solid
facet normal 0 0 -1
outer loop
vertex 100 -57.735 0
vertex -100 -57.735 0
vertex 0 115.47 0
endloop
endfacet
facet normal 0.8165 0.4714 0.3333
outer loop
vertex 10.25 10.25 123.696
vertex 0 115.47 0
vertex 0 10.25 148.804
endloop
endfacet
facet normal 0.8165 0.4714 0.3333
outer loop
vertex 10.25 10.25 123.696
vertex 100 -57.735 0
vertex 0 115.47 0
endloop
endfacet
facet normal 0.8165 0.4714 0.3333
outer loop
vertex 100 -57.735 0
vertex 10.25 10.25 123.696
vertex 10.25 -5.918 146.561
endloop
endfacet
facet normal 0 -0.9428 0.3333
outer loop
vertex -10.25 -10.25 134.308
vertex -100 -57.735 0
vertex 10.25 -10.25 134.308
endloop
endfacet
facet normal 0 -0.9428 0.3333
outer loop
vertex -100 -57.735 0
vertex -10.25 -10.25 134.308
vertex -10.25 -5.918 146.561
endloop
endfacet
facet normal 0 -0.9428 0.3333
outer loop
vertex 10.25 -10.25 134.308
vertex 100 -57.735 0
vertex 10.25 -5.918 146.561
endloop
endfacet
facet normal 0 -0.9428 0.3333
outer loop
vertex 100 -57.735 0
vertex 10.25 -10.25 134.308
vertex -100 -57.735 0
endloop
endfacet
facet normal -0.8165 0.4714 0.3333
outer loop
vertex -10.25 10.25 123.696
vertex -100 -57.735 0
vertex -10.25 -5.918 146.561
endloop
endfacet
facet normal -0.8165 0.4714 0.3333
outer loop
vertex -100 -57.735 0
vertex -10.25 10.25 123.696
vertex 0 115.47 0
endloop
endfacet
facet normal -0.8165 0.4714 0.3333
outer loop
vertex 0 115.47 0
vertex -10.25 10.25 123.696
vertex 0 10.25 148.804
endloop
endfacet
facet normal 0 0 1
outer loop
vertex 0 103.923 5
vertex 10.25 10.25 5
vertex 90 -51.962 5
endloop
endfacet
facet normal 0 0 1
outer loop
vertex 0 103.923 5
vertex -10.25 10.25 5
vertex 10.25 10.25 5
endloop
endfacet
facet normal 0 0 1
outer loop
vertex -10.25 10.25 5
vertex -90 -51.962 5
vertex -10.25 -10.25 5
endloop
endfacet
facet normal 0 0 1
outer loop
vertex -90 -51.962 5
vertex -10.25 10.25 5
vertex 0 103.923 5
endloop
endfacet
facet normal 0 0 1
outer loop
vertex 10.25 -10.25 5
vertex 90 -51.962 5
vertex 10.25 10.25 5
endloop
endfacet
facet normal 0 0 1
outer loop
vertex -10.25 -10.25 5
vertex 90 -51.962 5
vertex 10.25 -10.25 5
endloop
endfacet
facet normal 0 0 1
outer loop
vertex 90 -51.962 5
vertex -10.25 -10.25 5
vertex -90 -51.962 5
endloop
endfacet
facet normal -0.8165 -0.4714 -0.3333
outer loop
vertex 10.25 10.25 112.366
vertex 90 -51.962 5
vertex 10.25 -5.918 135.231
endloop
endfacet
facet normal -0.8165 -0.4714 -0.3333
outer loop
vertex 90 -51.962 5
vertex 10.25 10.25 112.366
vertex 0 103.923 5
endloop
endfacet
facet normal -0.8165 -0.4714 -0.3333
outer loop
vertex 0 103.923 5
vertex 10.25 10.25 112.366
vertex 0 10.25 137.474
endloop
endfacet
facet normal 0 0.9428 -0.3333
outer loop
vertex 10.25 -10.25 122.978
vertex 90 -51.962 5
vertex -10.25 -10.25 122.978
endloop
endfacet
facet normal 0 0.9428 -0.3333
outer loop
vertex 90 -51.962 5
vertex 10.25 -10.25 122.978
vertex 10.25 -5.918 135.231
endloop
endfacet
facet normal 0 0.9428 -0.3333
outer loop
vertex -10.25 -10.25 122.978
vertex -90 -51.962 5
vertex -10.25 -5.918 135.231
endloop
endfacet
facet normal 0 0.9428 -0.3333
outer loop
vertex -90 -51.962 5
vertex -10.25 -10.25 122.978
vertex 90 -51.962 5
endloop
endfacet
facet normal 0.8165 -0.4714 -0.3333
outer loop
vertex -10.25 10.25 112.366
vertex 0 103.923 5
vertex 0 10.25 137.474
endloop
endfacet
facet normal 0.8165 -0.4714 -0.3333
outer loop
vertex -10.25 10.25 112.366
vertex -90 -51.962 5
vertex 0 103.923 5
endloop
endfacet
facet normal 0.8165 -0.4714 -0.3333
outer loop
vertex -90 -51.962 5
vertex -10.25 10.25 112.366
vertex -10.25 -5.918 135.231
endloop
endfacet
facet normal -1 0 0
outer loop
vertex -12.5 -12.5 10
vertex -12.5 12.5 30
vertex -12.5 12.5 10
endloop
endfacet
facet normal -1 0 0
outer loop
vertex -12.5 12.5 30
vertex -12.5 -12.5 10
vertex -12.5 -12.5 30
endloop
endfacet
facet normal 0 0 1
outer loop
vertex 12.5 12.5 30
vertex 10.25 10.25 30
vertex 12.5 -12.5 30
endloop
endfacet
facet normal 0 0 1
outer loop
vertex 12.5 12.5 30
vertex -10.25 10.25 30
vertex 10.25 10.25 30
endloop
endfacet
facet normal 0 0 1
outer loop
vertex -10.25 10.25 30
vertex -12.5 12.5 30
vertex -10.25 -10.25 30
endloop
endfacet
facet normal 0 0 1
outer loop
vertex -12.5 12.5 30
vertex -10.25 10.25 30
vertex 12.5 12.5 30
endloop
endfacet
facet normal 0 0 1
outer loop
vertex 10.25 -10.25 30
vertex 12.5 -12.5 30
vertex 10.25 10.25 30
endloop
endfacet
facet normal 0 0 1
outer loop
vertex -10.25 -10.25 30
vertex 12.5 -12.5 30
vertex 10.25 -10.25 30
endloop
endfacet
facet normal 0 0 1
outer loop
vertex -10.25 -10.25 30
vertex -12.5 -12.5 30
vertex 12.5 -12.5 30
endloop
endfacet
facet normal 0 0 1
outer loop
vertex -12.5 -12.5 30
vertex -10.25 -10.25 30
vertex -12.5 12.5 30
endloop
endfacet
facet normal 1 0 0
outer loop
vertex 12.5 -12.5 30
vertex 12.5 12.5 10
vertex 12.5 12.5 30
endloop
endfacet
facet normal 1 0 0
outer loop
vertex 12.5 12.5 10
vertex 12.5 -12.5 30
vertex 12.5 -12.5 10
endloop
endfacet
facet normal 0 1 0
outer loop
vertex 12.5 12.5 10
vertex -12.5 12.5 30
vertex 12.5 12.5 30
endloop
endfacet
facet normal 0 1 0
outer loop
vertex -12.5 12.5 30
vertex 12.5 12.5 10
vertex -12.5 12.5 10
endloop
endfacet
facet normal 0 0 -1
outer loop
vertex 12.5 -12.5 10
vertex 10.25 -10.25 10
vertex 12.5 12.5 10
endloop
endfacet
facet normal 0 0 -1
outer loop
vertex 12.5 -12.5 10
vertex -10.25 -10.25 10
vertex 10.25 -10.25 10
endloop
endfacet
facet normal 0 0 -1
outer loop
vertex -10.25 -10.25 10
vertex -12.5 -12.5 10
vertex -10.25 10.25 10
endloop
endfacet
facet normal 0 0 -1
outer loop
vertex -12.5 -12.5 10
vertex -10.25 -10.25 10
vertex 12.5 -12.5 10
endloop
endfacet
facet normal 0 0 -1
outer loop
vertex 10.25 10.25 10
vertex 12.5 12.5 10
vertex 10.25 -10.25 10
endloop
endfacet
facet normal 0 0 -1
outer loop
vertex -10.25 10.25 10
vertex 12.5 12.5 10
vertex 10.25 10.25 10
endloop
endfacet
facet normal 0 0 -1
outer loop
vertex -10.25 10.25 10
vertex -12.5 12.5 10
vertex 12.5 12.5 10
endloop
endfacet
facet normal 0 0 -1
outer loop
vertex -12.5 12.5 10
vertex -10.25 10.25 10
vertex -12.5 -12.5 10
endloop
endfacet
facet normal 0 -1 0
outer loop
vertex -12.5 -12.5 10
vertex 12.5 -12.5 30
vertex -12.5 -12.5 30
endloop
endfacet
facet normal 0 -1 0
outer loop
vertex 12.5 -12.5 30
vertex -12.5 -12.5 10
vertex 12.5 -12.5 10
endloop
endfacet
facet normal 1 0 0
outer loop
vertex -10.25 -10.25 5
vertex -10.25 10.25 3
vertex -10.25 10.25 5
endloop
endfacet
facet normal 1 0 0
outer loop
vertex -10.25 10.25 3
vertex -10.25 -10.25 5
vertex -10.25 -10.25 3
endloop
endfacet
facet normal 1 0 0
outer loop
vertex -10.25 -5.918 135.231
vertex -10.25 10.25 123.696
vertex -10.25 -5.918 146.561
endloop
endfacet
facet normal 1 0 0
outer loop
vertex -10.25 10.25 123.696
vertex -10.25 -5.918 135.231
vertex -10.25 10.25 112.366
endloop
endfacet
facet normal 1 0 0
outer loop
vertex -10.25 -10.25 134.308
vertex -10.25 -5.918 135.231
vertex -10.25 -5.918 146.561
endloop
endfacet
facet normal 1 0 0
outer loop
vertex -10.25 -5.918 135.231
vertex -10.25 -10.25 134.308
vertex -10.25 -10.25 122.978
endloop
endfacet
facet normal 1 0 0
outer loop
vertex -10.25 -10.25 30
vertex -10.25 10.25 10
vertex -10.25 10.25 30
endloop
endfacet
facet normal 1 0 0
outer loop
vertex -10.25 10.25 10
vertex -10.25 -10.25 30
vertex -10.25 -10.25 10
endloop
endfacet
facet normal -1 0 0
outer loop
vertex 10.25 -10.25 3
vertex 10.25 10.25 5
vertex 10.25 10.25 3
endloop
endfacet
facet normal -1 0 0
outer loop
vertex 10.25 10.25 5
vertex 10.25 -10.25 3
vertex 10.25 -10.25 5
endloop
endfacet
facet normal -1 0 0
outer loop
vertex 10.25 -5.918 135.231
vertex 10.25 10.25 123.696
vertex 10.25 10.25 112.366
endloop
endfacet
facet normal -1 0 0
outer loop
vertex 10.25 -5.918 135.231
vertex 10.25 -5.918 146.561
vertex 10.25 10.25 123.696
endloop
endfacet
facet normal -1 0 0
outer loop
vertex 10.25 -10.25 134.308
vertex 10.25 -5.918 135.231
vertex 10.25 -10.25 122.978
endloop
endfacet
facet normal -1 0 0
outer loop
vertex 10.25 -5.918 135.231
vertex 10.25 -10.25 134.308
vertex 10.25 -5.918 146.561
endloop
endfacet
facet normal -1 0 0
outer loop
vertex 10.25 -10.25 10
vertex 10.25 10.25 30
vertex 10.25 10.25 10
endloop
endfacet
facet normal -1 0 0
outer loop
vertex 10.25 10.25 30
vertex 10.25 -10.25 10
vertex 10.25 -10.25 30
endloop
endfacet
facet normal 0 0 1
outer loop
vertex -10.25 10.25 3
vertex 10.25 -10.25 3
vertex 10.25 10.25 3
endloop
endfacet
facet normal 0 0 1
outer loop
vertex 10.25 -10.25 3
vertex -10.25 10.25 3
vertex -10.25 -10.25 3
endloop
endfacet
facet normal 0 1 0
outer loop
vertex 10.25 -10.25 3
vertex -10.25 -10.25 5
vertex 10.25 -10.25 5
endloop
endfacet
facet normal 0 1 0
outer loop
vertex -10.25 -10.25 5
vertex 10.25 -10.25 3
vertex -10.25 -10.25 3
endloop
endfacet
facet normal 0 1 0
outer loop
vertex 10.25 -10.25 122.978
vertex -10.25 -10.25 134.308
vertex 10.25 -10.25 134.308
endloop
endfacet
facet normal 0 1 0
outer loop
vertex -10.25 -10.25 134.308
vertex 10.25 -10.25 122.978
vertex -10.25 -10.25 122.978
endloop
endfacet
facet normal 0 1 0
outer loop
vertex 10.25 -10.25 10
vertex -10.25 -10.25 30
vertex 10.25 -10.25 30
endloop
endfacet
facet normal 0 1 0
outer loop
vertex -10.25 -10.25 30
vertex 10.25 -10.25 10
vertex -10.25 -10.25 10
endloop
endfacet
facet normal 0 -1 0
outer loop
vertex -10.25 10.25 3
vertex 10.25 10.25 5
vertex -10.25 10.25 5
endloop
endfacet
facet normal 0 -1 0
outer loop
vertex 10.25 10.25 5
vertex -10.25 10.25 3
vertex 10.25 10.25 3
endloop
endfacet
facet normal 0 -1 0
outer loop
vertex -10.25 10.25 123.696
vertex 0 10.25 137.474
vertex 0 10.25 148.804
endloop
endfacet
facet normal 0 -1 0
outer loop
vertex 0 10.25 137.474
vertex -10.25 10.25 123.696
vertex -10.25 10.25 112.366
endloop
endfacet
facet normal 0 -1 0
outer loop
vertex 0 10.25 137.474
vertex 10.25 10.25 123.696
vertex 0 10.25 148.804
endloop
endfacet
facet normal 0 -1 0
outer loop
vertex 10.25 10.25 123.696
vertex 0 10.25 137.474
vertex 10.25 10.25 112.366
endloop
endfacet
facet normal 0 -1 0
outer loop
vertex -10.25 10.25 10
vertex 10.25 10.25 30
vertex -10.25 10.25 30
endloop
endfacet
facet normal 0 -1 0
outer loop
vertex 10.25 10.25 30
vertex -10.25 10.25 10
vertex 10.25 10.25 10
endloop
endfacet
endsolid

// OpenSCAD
difference() {
    union() {
        difference() {
            pyramid(side=200);
        
            translate([0,0,5])
            pyramid(side=180);
        }
        
        translate([0,0,20])
        cube([25,25,20], true);
    }
    translate([0,0,203])
    cube([20.5, 20.5, 400], true);
}

module pyramid(side=10, height=-1, square=false, centerHorizontal=true, centerVertical=false){
// creates a 3 or 4 sided pyramid.  -1 height= tetrahedron or Johnson's Solid square pyramid
	mHeight= height!=-1 ? height:
		square == true ? (1/sqrt(2))*side:		//square
			sqrt(6)/3*side;						//tetra
	vert= centerVertical!=true ? [0,0,0]:
		square==false ? [0,0,-mHeight/4] :	 //inscribes a tetra inside a sphere, not 1/2 ht
			[0,0,-mHeight/2];	//for squares, center=false inscribes, so true is just 1/2 ht
	horiz= centerHorizontal!= true ? [0,0,0] :
		square == true ? [-side/2, -side/2, 0] : 	//square
			[-side/2,-sqrt(3)*side/6 ,0];			//tetra
	translate(vert+horiz){
		if (square == true){
			polyhedron (	points = [[0,0,0],[0,side,0],[side,side,0],
								[side,0,0],[side/2,side/2,mHeight]], 
						triangles = [[1,0,2], [2,0,3], [0,4,3], 
								[3,4,2], [2,4,1], [1,4,0]]);
		}
		if (square != true){
			polyhedron (	points = [[0,0,0],[side,0,0],[side/2,sqrt(3)*side/2,0],
								[side/2,sqrt(3)*side/6,mHeight]], 
						triangles = [[0,1,2], [1,0,3], [2,1,3],[2,3,0]]);			
		}
}	}
 
 
 
 /*
 
 polyhedron(
  points=[ [10,10,0],[10,-10,0],[-10,-10,0],[-10,10,0], 
  // the four points at base
           [0,0,10]  ],                                 
           // the apex point 
  faces=[ [0,1,4],[1,2,4],[2,3,4],[3,0,4],              
  // each triangle side
              [1,0,3],[2,1,3] ]
              // two triangles for square base
 );*/
